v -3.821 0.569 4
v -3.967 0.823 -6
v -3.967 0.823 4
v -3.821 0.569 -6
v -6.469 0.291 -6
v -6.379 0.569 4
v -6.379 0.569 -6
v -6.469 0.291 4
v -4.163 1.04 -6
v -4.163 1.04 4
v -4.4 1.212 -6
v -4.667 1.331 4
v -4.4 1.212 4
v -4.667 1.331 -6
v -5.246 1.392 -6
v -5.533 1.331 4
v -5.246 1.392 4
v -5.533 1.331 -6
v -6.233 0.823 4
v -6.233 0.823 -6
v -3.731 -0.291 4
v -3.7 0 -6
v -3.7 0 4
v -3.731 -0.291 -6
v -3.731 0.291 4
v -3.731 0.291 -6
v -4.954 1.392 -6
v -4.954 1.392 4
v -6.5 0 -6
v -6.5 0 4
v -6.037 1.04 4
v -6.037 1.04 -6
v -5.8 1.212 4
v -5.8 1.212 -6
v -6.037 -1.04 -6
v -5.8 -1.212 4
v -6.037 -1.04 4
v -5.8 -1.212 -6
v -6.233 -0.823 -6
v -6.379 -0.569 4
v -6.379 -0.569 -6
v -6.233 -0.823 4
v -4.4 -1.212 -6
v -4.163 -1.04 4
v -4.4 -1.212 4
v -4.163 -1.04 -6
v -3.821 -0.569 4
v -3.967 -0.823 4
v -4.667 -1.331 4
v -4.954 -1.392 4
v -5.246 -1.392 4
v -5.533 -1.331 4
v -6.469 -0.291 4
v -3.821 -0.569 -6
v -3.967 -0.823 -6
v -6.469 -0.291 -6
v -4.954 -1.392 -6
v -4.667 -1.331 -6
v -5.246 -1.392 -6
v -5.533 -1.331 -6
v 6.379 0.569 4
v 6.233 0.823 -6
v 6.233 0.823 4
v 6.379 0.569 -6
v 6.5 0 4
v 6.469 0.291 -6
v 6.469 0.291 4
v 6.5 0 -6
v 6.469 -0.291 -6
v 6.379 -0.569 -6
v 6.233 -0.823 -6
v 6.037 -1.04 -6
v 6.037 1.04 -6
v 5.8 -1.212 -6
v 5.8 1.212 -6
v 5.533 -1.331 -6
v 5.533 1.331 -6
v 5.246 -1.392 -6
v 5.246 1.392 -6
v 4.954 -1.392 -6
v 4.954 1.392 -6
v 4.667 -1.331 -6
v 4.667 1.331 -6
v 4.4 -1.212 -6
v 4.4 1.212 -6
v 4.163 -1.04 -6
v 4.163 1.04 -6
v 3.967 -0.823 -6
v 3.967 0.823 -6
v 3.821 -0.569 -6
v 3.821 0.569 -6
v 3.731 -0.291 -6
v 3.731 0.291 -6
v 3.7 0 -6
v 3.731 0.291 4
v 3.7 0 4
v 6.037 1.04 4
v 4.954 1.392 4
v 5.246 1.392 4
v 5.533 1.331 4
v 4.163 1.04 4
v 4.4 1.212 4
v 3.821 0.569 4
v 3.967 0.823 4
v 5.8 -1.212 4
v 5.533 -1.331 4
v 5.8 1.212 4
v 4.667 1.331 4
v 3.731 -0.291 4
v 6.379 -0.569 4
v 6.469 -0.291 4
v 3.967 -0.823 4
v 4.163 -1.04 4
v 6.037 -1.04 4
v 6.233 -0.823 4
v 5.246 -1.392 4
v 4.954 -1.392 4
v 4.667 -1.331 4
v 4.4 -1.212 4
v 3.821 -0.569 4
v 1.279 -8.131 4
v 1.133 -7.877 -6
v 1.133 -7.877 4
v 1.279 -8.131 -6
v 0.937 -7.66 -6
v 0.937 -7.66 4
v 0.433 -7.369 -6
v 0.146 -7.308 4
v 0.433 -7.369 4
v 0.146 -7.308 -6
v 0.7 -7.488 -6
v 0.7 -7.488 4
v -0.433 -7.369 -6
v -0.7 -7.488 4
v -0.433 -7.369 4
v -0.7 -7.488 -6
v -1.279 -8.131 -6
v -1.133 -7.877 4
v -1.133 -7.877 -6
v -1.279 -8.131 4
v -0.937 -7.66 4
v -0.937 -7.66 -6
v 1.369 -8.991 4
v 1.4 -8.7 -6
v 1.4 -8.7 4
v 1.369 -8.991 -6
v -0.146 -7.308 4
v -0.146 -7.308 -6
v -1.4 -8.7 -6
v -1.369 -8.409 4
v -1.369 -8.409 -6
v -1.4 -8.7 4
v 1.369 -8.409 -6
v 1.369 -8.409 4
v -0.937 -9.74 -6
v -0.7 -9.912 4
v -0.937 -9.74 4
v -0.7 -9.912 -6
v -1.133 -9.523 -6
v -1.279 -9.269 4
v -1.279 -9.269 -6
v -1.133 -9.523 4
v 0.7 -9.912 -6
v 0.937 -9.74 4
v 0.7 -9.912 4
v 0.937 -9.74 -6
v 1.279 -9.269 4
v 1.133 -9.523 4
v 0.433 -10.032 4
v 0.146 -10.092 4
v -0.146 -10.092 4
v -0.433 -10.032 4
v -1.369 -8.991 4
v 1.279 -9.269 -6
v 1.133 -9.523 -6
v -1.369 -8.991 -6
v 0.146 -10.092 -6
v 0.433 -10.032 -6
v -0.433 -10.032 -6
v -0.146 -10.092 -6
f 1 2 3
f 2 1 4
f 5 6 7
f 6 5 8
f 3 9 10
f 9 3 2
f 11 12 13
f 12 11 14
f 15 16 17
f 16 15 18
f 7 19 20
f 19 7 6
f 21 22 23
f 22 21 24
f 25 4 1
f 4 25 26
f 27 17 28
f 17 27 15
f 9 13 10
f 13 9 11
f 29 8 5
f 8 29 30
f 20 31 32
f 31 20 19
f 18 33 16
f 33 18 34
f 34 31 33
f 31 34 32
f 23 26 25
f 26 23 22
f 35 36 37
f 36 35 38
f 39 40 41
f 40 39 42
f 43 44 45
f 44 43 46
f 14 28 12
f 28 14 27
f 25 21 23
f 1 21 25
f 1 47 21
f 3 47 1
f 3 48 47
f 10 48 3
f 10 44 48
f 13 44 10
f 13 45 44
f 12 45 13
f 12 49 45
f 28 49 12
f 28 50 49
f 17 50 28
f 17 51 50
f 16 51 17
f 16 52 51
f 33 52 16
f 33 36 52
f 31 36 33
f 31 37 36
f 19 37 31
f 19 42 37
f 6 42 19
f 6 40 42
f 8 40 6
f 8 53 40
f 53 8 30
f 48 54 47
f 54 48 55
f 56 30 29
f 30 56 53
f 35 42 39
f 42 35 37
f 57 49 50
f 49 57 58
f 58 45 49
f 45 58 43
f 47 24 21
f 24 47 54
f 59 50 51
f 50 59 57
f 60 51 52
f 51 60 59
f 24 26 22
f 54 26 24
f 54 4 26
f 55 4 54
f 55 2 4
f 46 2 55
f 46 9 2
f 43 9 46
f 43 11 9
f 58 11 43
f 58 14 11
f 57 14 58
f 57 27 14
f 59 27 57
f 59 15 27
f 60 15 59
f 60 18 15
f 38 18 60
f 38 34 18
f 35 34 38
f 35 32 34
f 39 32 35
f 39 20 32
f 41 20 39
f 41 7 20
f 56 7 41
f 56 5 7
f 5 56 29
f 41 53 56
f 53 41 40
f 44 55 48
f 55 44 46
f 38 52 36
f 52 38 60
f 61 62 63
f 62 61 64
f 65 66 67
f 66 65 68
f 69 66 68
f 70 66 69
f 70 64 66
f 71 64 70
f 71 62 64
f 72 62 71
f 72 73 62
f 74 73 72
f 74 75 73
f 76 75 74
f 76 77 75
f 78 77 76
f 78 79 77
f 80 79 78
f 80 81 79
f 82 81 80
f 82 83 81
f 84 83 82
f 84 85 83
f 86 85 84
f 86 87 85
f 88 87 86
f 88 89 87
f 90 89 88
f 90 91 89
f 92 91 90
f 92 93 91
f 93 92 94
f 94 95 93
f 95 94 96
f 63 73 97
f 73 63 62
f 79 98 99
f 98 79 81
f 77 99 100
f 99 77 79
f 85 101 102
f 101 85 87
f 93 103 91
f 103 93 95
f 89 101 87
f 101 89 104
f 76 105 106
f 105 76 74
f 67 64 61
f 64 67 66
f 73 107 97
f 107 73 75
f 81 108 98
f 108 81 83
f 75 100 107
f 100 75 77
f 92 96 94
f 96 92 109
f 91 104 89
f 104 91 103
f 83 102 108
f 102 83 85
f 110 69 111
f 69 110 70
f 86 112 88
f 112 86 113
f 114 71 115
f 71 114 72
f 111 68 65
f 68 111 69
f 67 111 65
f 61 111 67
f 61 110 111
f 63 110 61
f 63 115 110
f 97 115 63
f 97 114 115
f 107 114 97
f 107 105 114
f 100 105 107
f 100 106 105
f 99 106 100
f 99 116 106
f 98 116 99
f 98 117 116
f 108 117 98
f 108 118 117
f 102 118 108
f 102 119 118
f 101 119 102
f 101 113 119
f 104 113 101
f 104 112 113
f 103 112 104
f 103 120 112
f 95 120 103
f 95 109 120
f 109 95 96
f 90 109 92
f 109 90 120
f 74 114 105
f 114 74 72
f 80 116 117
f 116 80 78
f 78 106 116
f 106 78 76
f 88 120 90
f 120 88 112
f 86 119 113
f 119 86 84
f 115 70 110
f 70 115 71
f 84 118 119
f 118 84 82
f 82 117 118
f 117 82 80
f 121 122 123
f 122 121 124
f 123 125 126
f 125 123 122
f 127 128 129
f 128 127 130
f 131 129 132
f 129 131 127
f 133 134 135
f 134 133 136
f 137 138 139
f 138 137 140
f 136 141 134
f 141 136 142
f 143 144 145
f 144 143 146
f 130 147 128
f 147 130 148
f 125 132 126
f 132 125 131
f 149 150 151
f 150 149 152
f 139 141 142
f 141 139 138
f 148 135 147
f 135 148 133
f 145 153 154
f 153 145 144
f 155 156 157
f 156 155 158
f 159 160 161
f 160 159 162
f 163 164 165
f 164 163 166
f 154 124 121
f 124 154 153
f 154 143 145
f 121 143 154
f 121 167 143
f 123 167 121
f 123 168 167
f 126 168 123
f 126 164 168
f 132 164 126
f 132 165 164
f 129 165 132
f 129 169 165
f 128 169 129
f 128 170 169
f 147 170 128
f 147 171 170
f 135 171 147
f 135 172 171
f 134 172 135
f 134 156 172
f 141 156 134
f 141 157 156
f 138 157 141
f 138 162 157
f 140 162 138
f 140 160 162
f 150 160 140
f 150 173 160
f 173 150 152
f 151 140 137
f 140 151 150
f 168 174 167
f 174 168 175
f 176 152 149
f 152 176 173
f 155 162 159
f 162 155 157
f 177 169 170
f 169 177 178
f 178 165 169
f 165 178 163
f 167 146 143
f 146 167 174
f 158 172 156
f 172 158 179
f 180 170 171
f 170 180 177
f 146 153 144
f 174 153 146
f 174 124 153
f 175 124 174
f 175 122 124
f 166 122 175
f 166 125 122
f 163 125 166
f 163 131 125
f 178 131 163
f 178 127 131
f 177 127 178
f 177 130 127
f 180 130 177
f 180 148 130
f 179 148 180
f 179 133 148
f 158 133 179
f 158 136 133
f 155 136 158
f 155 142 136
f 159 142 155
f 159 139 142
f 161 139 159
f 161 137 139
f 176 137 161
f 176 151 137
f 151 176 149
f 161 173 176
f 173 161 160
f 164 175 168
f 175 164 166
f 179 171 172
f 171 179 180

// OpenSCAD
//
// Hole spacing for mounting holes on the openBuilds cable chain. SKU:2450
//
// 
//
$fn=30;
dragChainHoles2450();

module dragChainHoles2450(heigthPins=10, diamiterPins=2.8){
	
	wSpacing = 10.2;
	dSpacing = 8.7;

	color("green") translate([-(wSpacing/2),0,-1]) cylinder(h=heigthPins,d=diamiterPins,center=true);
	color("green") translate([ (wSpacing/2),0,-1]) cylinder(h=heigthPins,d=diamiterPins,center=true);
	color("green") translate([-0,-dSpacing,-1]) cylinder(h=heigthPins,d=diamiterPins,center=true);

//	For testing
//	heightPlate = 2;
//	translate([0, -dSpacing/2, -(heigthPins/2)]) plate4Point(wSpacing + diamiterPins, dSpacing + diamiterPins, heightPlate, 2);
}
////////////////////////////////////////////////////////////////////////////////////////////////////
module plate4Point(x,y,z,d){
	hull(){
		color("green") translate([(x/2)-(d/2) ,(y/2) -(d/2),0]) cylinder(h=z, d=d, center=true);
		color("blue")  translate([(x/2)-(d/2) ,-(y/2)+(d/2),0]) cylinder(h=z, d=d, center=true);
		color("red")   translate([-(x/2)+(d/2),(y/2) -(d/2),0]) cylinder(h=z, d=d, center=true);
		color("grey")  translate([-(x/2)+(d/2),-(y/2)+(d/2),0]) cylinder(h=z, d=d, center=true);
	}
}
